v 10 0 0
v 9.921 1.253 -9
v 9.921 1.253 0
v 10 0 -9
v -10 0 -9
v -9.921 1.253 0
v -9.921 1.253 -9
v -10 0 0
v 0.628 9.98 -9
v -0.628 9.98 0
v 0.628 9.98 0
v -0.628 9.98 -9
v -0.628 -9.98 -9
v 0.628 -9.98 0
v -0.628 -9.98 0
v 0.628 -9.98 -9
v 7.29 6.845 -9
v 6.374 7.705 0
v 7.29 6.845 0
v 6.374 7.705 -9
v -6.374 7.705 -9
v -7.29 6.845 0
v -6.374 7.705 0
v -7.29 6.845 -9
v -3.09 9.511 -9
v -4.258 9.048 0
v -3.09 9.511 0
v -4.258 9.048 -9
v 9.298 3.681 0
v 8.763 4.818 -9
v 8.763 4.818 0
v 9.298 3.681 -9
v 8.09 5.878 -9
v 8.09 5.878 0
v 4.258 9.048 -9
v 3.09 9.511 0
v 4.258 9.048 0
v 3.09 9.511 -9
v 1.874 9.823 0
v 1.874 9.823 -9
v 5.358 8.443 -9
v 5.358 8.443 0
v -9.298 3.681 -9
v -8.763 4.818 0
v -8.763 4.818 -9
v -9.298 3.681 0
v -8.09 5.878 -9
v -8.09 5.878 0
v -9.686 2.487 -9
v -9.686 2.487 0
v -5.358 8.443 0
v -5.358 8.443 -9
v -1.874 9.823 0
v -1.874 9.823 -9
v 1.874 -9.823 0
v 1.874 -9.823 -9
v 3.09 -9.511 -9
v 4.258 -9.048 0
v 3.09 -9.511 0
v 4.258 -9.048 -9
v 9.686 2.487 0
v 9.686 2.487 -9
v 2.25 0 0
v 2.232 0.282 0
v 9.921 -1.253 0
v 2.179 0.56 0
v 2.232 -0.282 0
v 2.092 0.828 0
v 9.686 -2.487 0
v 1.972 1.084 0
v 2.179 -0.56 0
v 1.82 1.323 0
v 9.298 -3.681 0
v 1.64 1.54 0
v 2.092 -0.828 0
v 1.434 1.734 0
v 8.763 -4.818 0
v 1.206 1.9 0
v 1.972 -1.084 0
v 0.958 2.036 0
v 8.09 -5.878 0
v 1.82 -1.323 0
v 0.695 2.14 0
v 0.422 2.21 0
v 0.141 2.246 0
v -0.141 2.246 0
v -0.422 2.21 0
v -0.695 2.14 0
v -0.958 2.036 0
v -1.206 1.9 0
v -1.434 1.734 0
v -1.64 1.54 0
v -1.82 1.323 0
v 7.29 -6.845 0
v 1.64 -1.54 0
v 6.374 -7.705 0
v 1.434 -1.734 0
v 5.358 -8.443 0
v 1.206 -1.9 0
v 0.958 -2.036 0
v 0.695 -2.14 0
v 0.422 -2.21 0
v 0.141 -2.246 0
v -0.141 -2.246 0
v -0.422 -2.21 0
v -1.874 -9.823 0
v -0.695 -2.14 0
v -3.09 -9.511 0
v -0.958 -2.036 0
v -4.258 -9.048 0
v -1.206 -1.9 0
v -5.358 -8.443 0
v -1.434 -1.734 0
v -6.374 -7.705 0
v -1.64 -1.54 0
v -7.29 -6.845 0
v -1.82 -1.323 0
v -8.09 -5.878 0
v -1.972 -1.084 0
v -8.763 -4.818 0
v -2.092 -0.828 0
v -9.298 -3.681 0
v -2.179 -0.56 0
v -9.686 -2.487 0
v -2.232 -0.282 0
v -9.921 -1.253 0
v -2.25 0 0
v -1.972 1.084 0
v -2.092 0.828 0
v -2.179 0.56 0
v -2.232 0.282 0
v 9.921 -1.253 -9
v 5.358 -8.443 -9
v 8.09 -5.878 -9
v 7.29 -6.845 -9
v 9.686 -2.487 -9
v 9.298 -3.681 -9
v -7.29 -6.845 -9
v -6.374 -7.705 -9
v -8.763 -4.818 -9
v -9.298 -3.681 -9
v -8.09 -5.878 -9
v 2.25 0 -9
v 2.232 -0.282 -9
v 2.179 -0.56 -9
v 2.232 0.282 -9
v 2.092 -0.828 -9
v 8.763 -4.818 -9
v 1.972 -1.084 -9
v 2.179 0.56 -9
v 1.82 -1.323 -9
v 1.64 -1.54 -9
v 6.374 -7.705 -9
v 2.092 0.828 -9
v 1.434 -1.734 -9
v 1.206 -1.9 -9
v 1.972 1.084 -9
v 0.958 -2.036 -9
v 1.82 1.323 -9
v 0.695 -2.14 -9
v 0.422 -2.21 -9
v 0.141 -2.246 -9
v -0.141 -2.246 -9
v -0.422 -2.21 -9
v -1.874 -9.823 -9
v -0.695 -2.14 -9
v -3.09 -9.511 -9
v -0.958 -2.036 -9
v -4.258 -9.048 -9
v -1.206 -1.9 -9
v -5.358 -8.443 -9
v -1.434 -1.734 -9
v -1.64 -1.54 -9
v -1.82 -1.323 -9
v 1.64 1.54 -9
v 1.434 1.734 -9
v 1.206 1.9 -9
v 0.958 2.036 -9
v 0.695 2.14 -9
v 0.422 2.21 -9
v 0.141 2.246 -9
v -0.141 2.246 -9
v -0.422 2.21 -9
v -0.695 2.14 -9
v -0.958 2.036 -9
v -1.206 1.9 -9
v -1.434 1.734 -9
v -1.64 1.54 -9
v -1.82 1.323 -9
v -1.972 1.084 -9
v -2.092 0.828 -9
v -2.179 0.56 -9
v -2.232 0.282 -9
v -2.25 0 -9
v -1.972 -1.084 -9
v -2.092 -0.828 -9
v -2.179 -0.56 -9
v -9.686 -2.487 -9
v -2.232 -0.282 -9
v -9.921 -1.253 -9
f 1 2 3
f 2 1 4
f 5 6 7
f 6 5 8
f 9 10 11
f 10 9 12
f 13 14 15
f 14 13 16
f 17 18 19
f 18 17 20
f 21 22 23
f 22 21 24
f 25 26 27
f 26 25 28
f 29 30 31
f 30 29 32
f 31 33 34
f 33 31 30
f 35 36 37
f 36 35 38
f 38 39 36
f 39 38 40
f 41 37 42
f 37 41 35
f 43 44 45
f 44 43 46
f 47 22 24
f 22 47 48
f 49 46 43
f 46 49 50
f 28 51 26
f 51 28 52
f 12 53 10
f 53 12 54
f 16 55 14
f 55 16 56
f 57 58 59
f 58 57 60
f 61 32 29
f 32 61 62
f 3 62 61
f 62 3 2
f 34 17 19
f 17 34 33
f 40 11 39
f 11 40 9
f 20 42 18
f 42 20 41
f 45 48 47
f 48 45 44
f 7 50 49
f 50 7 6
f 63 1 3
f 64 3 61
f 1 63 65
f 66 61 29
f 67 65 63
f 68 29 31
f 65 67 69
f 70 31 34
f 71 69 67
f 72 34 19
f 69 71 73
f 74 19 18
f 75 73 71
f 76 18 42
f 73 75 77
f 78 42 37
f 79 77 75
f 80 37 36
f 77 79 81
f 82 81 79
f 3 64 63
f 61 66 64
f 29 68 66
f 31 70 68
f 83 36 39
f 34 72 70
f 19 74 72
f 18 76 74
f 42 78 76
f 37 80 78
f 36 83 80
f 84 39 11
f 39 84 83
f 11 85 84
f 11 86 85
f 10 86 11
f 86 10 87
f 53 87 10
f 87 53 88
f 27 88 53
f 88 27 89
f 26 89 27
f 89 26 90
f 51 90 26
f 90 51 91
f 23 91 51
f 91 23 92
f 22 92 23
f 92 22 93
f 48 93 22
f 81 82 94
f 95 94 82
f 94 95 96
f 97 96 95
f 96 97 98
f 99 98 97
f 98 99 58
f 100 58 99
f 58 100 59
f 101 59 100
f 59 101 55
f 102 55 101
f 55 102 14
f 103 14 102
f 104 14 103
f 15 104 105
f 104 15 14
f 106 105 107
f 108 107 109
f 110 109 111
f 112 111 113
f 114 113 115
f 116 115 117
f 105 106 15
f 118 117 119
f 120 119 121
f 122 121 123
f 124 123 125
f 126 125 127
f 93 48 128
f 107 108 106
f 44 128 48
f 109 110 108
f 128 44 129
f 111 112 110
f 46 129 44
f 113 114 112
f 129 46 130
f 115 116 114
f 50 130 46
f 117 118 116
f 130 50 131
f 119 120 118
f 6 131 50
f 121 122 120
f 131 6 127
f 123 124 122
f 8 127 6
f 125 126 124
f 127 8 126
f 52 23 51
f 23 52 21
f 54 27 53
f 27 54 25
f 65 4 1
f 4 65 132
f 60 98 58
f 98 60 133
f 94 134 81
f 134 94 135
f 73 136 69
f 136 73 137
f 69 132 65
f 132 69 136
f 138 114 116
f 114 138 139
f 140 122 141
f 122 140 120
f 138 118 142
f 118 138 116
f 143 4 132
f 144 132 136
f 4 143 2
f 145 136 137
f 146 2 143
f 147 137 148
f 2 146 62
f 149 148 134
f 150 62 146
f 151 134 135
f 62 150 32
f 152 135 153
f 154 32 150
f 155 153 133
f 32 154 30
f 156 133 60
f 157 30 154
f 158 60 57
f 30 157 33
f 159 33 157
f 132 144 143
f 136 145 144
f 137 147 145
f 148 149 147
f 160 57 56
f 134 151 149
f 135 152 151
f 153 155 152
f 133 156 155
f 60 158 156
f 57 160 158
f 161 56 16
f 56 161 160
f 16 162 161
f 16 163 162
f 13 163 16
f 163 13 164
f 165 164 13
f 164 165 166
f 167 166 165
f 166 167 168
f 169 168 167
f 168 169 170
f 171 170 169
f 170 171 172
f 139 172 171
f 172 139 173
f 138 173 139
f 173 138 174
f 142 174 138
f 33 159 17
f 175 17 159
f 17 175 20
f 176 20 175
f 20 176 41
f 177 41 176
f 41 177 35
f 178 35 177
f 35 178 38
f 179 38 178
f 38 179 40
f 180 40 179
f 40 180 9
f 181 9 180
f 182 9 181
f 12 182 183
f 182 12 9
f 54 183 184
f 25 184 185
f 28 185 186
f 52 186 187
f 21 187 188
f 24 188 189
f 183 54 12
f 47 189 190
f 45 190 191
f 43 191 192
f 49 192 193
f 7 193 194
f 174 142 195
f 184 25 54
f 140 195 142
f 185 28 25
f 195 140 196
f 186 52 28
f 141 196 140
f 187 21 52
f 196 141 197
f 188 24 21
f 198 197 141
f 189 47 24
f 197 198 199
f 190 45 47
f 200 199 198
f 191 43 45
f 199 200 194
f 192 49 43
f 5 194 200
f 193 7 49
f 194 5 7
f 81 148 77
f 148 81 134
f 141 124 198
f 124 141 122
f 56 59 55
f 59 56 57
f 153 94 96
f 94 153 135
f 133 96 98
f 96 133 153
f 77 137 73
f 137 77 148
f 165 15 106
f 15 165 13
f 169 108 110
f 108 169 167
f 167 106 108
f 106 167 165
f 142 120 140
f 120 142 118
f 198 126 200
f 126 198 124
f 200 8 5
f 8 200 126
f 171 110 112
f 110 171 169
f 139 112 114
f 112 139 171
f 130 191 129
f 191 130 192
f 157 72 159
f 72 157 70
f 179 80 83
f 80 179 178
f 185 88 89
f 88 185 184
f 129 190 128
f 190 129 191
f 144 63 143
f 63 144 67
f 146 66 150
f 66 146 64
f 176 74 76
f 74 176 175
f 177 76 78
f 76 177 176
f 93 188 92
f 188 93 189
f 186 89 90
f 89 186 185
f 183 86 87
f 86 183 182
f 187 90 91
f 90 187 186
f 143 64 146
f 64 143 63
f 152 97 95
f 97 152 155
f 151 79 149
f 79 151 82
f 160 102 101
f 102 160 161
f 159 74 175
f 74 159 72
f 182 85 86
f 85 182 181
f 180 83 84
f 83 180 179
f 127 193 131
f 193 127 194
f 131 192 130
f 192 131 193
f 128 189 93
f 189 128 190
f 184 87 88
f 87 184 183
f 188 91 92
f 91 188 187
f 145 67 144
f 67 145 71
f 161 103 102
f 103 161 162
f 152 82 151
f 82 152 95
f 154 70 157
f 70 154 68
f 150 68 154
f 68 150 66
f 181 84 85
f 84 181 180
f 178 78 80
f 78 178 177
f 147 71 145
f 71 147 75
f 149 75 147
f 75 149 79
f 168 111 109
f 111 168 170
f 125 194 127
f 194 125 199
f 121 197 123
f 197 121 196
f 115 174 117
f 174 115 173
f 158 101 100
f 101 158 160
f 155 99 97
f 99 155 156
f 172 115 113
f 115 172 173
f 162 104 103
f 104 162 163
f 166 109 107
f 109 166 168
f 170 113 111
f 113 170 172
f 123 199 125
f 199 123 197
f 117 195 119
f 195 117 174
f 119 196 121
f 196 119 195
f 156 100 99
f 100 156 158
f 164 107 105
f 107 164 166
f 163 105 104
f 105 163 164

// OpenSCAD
$fn = 50;


difference() {
	union() {
		translate(v = [0, 0, -9.0000000000]) {
			cylinder(h = 9, r = 10.0000000000);
		}
		cylinder(h = 0, r = 13.0000000000);
	}
	union() {
		#translate(v = [0, 0, -9]) {
			cylinder(h = 9, r = 2.2500000000);
		}
	}
}
